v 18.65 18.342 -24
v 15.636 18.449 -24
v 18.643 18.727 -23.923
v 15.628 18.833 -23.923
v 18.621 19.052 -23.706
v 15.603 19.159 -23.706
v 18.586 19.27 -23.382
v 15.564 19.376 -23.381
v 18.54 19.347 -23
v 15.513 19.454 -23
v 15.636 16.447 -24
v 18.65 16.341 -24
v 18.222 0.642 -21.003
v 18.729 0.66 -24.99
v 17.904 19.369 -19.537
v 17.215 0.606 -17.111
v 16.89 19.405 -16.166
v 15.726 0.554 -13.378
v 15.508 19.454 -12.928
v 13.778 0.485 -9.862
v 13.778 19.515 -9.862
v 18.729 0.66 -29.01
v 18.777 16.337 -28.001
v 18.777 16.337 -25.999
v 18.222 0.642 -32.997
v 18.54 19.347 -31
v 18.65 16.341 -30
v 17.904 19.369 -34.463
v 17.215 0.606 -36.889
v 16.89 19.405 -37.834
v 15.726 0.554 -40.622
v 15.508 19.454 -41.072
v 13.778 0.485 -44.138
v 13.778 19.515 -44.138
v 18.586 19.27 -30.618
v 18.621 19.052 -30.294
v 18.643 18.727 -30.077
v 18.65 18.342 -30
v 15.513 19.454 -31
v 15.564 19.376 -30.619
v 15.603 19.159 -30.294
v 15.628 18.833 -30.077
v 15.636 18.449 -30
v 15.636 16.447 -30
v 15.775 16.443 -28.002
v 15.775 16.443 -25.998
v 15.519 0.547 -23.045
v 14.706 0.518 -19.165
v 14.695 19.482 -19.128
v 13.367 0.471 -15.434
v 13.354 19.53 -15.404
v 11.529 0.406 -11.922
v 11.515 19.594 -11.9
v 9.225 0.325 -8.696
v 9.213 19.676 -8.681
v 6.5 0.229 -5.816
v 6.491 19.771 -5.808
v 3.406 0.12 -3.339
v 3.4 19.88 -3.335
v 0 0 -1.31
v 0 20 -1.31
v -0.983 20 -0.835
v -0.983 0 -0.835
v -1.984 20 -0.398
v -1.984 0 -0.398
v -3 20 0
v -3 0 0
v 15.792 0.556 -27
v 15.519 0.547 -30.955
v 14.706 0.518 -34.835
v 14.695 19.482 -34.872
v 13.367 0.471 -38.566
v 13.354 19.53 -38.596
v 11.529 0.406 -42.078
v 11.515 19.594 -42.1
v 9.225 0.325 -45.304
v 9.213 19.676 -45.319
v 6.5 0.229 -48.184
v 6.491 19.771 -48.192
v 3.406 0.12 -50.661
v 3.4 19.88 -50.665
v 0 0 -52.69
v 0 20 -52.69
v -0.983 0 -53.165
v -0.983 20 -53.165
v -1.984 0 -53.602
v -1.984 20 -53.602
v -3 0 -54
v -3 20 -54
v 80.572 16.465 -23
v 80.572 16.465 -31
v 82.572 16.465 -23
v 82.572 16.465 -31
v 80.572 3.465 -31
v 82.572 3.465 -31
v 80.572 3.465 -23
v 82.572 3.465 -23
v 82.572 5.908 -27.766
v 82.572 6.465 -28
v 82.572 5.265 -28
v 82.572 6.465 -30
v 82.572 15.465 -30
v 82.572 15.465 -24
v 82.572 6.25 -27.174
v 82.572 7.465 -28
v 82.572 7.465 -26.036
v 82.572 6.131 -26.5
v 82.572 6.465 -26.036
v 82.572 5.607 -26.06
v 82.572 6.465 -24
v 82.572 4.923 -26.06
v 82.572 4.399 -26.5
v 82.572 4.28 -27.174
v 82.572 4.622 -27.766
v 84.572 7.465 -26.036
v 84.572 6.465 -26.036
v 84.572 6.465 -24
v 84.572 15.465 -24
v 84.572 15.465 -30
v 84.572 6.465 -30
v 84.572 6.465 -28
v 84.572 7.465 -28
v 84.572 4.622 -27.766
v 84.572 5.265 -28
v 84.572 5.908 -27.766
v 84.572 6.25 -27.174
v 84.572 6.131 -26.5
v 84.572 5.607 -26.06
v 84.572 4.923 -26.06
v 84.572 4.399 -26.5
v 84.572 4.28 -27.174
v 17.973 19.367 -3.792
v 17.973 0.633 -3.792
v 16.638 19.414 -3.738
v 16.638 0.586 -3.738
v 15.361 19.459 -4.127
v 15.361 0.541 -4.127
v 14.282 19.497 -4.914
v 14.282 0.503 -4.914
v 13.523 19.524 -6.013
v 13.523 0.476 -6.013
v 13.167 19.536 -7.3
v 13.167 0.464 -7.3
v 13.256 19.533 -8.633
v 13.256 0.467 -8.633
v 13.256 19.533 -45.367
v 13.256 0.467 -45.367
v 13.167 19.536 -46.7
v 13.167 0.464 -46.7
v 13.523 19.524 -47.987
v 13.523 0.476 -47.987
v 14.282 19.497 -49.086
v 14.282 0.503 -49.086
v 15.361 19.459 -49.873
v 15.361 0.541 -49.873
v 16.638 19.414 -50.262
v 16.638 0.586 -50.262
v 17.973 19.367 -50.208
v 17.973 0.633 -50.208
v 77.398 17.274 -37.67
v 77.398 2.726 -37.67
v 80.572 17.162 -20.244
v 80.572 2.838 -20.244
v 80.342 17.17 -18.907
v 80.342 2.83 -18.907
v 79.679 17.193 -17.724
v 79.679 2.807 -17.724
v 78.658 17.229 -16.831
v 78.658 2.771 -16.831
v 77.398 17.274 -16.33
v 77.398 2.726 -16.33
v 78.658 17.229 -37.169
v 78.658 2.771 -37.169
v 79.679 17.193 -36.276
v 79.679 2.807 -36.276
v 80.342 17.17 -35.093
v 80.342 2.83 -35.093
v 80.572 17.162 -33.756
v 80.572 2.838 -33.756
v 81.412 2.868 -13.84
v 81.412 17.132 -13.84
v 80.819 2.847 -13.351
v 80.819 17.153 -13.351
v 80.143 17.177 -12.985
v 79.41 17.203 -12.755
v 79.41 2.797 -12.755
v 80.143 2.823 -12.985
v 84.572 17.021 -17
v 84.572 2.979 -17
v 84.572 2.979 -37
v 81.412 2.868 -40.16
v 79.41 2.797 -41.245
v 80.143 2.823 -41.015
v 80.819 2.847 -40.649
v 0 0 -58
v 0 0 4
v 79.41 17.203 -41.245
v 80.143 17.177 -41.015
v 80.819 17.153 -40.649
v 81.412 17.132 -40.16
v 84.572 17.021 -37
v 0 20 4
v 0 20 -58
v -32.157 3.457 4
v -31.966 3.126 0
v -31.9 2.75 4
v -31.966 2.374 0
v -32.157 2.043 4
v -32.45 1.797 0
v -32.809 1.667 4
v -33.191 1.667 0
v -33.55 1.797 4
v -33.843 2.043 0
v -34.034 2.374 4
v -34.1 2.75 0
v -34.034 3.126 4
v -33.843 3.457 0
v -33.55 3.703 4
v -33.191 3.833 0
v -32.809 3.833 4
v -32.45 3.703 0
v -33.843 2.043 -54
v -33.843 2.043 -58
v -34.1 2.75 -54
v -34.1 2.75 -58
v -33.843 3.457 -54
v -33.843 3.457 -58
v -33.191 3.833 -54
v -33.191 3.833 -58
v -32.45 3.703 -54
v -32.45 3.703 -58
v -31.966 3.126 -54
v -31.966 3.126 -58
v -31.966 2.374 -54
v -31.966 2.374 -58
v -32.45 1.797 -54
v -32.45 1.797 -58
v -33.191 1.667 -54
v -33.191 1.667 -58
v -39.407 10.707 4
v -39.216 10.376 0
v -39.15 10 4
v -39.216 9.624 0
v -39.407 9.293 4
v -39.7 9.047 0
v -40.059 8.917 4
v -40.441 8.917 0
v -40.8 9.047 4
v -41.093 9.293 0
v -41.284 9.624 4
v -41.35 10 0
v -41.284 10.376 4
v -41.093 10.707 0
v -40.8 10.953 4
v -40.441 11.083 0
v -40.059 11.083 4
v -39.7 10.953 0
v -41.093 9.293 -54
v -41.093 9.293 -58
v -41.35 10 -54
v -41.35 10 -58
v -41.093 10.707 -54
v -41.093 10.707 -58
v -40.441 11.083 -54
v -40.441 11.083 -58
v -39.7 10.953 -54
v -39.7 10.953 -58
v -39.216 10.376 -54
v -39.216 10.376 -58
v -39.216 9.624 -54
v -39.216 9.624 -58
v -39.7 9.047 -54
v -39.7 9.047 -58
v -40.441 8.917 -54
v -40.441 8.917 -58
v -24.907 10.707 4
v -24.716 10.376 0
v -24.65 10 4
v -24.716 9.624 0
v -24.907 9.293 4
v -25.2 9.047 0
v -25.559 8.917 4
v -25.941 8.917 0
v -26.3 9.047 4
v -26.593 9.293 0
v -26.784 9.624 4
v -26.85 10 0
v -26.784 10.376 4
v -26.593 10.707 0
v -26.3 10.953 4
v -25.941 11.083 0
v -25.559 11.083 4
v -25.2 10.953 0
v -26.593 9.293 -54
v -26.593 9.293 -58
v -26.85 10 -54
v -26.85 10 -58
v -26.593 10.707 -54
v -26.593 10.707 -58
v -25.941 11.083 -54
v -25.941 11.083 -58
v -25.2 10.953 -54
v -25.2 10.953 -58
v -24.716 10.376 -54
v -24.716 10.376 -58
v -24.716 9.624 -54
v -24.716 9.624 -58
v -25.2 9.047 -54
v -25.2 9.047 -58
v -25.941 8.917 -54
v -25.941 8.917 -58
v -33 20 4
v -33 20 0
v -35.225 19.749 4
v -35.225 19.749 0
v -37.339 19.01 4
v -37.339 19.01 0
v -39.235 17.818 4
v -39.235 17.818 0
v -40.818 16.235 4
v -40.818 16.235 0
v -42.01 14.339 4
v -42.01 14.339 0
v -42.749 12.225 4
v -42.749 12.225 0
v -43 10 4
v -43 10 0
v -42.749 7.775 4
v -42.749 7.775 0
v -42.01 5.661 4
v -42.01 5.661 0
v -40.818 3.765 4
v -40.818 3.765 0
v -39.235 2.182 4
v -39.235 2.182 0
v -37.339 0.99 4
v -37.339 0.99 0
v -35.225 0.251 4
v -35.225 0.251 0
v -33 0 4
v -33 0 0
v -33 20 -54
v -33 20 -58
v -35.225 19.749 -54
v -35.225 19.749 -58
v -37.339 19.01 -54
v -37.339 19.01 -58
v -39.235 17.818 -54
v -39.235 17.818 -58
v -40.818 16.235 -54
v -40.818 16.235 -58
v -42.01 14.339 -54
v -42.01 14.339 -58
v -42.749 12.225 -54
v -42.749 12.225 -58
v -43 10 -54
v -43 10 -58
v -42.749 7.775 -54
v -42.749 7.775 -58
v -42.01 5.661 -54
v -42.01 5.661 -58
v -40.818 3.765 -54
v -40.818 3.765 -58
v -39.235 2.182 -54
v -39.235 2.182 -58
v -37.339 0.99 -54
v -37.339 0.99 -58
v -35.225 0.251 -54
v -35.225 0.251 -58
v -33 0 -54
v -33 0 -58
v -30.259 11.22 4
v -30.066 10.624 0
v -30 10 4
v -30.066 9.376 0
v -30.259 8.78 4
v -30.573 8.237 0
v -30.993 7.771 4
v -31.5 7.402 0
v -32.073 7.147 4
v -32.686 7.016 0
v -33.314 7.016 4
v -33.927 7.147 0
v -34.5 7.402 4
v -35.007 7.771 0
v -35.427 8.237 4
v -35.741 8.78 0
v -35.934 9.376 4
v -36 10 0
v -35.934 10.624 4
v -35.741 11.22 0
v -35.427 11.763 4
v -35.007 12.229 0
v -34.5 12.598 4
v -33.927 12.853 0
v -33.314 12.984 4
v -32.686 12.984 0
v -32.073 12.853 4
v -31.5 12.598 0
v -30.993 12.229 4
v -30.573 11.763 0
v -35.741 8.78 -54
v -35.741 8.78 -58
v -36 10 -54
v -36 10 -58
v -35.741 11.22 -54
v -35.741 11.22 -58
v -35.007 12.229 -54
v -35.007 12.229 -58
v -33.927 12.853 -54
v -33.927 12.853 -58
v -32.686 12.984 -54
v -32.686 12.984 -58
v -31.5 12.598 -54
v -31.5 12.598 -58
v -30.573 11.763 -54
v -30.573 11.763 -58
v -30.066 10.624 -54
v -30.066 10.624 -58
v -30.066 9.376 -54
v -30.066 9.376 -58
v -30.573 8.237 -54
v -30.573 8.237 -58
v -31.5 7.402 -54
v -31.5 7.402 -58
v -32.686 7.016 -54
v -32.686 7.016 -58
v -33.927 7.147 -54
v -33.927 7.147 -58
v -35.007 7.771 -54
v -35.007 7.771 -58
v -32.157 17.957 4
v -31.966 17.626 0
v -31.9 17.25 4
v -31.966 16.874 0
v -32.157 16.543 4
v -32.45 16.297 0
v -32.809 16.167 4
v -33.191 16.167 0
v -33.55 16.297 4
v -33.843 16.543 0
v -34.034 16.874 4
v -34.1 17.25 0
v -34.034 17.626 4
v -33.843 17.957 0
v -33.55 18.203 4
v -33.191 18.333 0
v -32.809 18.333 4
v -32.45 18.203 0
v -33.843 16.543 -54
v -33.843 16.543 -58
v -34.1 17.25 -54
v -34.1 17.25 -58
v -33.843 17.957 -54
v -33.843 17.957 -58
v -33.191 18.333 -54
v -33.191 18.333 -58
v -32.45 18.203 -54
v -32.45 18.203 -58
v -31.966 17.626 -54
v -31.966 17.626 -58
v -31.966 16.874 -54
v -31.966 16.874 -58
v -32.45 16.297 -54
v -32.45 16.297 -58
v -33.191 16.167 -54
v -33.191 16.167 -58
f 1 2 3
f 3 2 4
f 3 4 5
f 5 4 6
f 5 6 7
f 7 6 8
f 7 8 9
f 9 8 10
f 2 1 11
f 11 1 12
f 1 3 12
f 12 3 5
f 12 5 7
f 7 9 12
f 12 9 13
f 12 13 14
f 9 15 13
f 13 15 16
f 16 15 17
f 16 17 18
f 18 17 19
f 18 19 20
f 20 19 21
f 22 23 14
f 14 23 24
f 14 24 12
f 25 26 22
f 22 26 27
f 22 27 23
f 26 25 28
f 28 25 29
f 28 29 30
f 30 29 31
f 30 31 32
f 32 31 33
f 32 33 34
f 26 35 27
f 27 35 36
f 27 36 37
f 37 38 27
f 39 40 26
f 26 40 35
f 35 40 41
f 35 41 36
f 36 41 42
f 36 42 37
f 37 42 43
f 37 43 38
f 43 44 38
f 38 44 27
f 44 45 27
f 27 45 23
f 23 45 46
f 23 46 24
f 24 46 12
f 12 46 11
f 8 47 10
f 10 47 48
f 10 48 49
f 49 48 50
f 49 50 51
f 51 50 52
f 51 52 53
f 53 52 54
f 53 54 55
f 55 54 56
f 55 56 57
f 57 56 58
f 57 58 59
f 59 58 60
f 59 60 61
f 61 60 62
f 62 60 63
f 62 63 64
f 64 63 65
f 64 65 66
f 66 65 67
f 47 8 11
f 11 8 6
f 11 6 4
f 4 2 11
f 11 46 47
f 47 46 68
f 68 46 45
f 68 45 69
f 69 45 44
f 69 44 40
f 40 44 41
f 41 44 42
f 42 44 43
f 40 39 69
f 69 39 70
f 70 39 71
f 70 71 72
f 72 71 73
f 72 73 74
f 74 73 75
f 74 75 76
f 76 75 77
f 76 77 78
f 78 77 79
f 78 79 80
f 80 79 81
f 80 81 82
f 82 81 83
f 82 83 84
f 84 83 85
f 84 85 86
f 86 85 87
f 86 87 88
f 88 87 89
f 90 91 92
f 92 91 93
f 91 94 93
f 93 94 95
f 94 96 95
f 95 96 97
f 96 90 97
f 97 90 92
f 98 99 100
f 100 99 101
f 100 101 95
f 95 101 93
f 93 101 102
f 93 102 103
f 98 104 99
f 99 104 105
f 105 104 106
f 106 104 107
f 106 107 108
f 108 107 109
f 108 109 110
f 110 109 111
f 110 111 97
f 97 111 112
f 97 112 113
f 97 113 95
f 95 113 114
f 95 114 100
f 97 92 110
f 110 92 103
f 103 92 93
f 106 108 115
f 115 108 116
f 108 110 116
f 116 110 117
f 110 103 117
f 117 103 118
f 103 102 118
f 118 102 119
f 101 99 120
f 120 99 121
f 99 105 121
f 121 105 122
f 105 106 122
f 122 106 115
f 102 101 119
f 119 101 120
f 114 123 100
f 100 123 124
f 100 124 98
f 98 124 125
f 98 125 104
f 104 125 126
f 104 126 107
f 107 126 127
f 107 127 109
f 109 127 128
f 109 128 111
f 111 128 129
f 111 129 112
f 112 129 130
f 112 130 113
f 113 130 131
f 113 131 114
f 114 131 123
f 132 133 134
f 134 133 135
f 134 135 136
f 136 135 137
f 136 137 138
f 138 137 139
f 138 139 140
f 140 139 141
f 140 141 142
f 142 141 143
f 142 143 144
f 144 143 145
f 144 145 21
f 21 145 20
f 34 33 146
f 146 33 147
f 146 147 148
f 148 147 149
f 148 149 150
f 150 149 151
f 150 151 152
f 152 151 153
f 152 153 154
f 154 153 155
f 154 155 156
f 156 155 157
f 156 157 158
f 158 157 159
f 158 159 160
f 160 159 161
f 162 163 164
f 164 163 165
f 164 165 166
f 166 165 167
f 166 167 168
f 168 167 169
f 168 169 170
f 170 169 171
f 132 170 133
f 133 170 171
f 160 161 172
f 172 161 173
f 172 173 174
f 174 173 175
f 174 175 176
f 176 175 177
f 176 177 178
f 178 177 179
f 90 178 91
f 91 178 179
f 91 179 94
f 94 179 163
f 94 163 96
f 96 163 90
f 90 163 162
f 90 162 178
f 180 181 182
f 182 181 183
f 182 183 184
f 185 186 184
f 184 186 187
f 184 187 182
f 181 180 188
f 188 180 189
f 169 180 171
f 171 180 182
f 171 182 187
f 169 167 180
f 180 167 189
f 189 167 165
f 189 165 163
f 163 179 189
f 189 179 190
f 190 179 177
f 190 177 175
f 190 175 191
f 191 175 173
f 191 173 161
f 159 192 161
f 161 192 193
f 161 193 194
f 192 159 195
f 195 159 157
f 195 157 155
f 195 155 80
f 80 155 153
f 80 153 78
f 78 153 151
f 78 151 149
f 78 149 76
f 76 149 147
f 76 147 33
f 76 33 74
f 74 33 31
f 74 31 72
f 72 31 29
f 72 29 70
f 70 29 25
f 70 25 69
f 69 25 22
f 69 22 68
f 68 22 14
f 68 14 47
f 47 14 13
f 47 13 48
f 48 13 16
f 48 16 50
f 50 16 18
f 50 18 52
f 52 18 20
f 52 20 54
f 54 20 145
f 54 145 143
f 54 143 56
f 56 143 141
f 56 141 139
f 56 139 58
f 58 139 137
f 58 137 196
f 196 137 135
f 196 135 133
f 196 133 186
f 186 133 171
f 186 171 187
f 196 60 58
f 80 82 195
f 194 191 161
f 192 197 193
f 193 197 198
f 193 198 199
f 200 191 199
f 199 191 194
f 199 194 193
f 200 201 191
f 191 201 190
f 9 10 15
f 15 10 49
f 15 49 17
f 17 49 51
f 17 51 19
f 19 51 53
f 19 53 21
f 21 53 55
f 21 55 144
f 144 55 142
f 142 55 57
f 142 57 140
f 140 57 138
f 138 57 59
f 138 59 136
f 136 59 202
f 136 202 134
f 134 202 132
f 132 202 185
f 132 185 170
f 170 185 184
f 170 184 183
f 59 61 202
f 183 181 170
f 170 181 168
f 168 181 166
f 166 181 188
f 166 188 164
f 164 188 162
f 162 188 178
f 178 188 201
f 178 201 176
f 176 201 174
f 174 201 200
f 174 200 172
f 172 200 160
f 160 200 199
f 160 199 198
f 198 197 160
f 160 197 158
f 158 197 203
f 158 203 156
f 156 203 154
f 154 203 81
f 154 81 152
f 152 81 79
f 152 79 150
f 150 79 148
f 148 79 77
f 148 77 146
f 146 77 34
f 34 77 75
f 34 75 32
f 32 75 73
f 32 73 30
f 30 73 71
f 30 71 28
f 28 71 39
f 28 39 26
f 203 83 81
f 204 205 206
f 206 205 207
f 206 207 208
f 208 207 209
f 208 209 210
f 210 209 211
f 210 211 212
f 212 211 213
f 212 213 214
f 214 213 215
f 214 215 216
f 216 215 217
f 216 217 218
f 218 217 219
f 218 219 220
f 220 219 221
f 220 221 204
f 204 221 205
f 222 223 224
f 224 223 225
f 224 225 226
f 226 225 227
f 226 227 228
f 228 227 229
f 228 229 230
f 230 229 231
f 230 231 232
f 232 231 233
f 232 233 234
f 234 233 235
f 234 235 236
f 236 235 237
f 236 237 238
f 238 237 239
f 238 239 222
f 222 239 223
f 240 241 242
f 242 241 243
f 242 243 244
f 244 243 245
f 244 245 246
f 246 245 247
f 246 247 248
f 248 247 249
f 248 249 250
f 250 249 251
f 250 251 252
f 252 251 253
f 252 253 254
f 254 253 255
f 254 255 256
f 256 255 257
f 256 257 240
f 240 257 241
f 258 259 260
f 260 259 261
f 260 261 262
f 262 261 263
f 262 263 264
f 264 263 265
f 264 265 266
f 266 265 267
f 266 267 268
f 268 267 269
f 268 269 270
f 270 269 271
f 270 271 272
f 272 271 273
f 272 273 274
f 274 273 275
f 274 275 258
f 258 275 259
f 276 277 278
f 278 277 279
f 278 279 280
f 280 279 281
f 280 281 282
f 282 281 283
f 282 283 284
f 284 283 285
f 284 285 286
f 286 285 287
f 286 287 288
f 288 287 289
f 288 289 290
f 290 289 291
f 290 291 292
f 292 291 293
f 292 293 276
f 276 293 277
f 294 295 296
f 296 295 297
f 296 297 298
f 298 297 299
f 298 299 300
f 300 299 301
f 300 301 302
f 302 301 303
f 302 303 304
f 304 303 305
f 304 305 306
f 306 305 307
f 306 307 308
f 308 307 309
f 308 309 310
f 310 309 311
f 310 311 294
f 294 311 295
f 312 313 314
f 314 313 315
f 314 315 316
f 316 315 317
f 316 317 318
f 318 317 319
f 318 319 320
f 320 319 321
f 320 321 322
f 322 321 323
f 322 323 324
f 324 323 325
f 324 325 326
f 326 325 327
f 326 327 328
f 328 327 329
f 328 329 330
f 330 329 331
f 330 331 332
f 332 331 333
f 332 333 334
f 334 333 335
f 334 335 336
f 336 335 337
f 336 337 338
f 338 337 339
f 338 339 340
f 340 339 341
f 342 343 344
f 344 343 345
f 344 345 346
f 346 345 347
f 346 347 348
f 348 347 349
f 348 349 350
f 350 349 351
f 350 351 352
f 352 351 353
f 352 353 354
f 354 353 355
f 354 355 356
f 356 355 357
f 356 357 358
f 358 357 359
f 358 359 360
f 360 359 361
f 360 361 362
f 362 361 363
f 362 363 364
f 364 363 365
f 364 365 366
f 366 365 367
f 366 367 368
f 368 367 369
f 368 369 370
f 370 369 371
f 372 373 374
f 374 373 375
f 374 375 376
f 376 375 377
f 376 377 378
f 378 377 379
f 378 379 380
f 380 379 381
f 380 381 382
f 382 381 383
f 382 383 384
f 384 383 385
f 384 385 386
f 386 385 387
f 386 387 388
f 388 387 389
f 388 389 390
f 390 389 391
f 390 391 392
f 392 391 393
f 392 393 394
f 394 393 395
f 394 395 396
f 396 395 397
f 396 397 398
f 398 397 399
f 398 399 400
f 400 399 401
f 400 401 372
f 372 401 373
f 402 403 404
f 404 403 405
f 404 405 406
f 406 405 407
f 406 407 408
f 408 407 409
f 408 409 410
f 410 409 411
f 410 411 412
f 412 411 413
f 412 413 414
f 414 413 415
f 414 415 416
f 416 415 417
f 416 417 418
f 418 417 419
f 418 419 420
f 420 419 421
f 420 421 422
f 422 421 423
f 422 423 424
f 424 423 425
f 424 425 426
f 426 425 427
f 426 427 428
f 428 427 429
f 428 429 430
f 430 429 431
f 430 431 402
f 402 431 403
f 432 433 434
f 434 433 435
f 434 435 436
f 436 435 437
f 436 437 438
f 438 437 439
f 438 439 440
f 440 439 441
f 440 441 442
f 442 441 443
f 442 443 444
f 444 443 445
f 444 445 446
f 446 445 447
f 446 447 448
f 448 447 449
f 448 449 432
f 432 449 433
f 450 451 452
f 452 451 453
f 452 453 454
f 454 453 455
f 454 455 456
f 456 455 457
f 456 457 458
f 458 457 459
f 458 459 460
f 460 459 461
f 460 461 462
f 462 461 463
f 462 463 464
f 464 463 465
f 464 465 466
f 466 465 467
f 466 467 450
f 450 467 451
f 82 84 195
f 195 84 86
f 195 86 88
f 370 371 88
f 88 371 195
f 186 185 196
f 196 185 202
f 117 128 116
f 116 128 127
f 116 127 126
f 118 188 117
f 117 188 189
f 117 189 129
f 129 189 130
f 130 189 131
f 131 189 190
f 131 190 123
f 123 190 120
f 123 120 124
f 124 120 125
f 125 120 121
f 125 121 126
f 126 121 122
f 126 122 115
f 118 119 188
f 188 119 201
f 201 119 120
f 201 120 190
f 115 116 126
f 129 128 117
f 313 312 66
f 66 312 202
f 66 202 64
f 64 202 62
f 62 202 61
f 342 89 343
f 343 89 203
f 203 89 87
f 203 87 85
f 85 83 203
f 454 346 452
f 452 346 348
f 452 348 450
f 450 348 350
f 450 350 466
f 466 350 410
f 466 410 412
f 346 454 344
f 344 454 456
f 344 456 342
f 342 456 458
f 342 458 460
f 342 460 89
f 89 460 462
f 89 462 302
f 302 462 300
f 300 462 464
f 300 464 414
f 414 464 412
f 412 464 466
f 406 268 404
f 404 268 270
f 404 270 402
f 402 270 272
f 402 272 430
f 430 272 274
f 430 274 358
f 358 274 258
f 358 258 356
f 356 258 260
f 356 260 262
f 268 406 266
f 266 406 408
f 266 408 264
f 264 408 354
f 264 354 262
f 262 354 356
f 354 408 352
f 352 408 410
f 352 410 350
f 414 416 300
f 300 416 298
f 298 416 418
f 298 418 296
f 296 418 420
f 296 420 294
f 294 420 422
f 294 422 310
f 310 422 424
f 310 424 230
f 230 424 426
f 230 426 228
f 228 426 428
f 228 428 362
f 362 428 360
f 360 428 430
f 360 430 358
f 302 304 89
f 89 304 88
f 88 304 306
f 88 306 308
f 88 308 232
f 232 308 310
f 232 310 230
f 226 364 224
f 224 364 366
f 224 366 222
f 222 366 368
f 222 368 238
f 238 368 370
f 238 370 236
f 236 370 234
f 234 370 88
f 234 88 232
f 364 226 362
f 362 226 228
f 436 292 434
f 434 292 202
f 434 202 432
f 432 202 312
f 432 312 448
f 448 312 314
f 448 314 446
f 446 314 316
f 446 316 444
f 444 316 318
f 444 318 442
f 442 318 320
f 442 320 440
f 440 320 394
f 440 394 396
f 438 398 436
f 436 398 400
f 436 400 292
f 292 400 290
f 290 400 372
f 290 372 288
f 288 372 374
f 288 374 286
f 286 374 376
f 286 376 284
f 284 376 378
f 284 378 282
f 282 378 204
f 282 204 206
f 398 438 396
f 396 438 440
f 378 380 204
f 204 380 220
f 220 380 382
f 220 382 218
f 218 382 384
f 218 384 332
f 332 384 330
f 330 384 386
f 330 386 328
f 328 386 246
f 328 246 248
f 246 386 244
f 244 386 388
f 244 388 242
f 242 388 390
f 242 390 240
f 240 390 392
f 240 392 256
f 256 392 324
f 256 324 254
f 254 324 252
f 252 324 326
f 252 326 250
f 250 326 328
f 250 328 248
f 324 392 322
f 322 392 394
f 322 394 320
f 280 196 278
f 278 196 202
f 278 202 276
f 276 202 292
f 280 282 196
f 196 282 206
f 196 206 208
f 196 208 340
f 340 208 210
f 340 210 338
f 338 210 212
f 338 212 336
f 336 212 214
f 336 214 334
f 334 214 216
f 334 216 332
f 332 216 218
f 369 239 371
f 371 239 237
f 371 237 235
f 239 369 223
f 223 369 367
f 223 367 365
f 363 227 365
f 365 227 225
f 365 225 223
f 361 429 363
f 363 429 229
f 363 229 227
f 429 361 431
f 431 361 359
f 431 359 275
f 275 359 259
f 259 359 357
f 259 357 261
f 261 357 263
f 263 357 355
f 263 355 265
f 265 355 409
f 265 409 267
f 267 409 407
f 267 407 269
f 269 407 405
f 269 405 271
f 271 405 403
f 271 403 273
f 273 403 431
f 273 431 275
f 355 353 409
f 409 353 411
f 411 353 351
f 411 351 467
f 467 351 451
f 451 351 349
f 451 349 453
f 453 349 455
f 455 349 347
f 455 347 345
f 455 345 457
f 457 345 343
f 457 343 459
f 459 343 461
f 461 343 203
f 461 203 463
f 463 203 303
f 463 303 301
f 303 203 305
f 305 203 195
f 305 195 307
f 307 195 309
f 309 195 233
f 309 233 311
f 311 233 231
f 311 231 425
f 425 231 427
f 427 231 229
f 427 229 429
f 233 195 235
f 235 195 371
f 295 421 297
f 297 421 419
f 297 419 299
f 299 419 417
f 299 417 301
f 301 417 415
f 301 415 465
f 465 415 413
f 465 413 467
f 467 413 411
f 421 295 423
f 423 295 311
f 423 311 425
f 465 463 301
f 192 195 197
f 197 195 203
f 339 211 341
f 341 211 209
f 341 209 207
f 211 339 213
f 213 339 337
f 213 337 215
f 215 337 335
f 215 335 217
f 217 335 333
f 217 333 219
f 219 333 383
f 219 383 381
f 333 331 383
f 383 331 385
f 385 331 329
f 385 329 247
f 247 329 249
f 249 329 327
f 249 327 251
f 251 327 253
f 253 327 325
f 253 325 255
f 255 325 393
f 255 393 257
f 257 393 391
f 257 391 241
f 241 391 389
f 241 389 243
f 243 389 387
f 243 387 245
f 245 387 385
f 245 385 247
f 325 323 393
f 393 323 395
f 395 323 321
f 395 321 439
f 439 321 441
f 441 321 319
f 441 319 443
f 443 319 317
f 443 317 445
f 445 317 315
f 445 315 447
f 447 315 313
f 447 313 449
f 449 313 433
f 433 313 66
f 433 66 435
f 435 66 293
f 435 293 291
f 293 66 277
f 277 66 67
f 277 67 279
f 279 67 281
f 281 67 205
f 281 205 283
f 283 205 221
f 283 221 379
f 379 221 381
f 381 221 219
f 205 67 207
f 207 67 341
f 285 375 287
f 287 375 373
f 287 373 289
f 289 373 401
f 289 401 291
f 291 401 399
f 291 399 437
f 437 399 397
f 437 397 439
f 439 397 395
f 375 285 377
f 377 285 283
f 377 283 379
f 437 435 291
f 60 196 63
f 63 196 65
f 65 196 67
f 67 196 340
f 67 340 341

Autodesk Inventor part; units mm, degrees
ref_plane "YZ Plane" through (0, 0, 0) normal (1, 0, 0) x (0, 1, 0)
ref_plane "XZ Plane" through (0, 0, 0) normal (0, 1, 0) x (-1, 0, 0)
ref_plane "XY Plane" through (0, 0, 0) normal (0, 0, 1) x (1, 0, 0)
sketch "Sketch1" plane through (0, 0, 0) normal (0, 1, 0) x (-1, 0, 0)
  line L0 (0, 0) -> (0, -54)
  line L1 (0, -54) -> (5, -54)
  line L2 (5, -54) -> (5, -58)
  line L3 (5, -58) -> (0, -58)
  line L4 (0, -58) -> (0, -54)
  line L5 (0, 0) -> (3, 0)
  line L6 (3, 0) -> (3, 4)
  line L7 (3, 4) -> (0, 4)
  line L8 (0, 4) -> (0, 0)
  line L9 (3, 0) -> (0, 0)
  line L10 (0, 0) -> (0, -54)
  line L11 (0, -54) -> (3, -54)
  line L12 (3, -54) -> (3, 0)
  line L13 (3, 4) -> (43, 4)
  line L14 (43, 4) -> (43, 0)
  line L15 (43, 0) -> (3, 0)
  line L16 (3, 0) -> (3, 4)
  line L17 (3, -54) -> (43, -54)
  line L18 (43, -54) -> (43, -58)
  line L19 (43, -58) -> (3, -58)
  line L20 (3, -58) -> (3, -54)
  line L21 (0, -27) -> (-82.8143, -27)
  line L22 (-82.8143, -27) -> (-97.578, -27)
  line L23 (0, 4) -> (90, 4) construction
  line L24 (0, 0) -> (80, 0) construction
  line L25 (-84.5723, -27) -> (-84.5723, -17)
  line L26 (-84.5723, -27) -> (-84.5723, -37)
  line L27 (-84.5723, -37) -> (-80.5723, -37)
  line L28 (-80.5723, -37) -> (-80.5723, -17)
  line L29 (-80.5723, -17) -> (-84.5723, -17)
  line L30 (0, 0) -> (-80.5723, -17)
  line L31 (0, -54) -> (-80.5723, -37)
  line L32 (-80.5723, -37) -> (-80.5723, -41)
  line L33 (-80.5723, -41) -> (0, -58)
  line L34 (-84.5723, -37) -> (-80.5723, -41)
  line L35 (-80.5723, -17) -> (-80.5723, -13)
  line L36 (-80.5723, -13) -> (0, 4)
  line L37 (-84.5723, -17) -> (-80.5723, -13)
  line L38 (3, -27) -> (13, -27)
  circle A0 centre (13, -27) radius 28.7924
  line L39 (41.7924, -27) -> (44.7924, -27)
  circle A1 centre (13, -27) radius 31.7924
  point P0 (-85.1718, -27)
  point P1 (-74.1819, -27)
  point P2 (3, 0)
  point P3 (-5.5314, -1.1671)
  point P4 (-5.5314, -52.8329)
  dimension "d0" = 54
  dimension "d1" = 5
  dimension "d2" = 4
  dimension "d3" = 3
  dimension "d4" = 4
  dimension "d5" = 40
  dimension "d6" = 40
  dimension "d32" = 10
  dimension "d34" = 10
  dimension "d35" = 4
  dimension "d36" = 4
  dimension "d37" = 4
  dimension "d41" = 10
  dimension "d42" = 3
  dimension "d58" = 4
extrude "Extrusion1" add sketch "Sketch1" along normal blind 20 contours L5 A0 L0 | L8 A1 L6 L5 | L30 A1 L8 | L0 A0 L21 A1 L30 | A0 L15 | L6 A1 L13 L15 A0 | A1 L30 L35 L36 L8 | L8 L7 L6 A1 | A0 L0 L31 A1 L21 | L6 L13 A1 | L28 L21 L22 L25 L29 | L29 L37 L35 | A0 L1 L0 | L20 A1 L4 L1 | A0 L2 A1 L20 | L1 L2 A0 | A1 L13 L14 L15 | L28 L27 L26 L22 L21 | A1 L4 L33 L32 L31 | L31 L4 A1 | L17 A0 L2 | A1 L2 L3 L20 | L20 L3 L4 A1 | A0 L17 A1 L19 L2 | L32 L34 L27 | A1 L19 L2 | L17 L18 L19 A1
sketch "Sketch2" plane through (-43, 0, 4) normal (0, 0, 1) x (1, 0, 0)
  line L0 (43, 20) -> (0, 20) projected
  line L1 (0, 20) -> (10, 20)
  line L2 (10, 20) -> (10, 10)
  line L3 (10, 10) -> (0, 10)
  line L4 (0, 10) -> (0, 20)
  circle A0 centre (10, 10) radius 3
  circle A1 centre (10, 10) radius 10
  line L5 (128.1718, 0) -> (128.1718, 20) projected
  line L6 (128.1718, 10) -> (128.1718, 17)
  line L7 (128.1718, 17) -> (128.1718, 3)
  line L8 (43, 0) -> (0, 0) projected
  line L9 (128.1718, 3) -> (43, 0)
  line L10 (43, 0) -> (128.1718, 0)
  line L11 (128.1718, 0) -> (128.1718, 3)
  line L12 (43, 20) -> (73.6773, 20) projected
  line L13 (128.1718, 17) -> (43, 20)
  line L14 (128.1718, 20) -> (43, 20) projected
  line L15 (43, 20) -> (128.1718, 20)
  line L16 (128.1718, 20) -> (128.1718, 17)
  line L17 (10, 10) -> (0, 10)
  line L18 (0, 10) -> (0, 0)
  line L19 (0, 0) -> (10, 0)
  line L20 (10, 0) -> (10, 10)
  circle A2 centre (10, 10) radius 8
  circle A3 centre (10, 10) radius 6.5
  line L21 (10, 18) -> (10, 16.5)
  circle A4 centre (10, 17.25) radius 1.1
  line L22 (2, 10) -> (3.5, 10)
  circle A5 centre (2.75, 10) radius 1.1
  line L23 (10, 3.5) -> (10, 2)
  circle A6 centre (10, 2.75) radius 1.1
  line L24 (16.5, 10) -> (18, 10)
  circle A7 centre (17.25, 10) radius 1.1
  dimension "d15" = 10
  dimension "d16" = 10
  dimension "d17" = 6
  dimension "d18" = 7
  dimension "d19" = 14
  dimension "d22" = 16
  dimension "d23" = 13
  dimension "d24" = 2.2
  dimension "d25" = 2.2
  dimension "d26" = 2.2
  dimension "d27" = 2.2
extrude "Extrusion2" cut sketch "Sketch2" against normal blind 100 contours L12 L14 L5 L13 | A1 L4 L0 | A4 A2 L2 | L2 A2 A4 | A1 L8 L18 | A2 A4 A3 L2 | L2 A3 A4 A2 | A5 A2 L3 | L3 A2 A5 | L5 L10 L9 | A3 A4 L2 | L2 A4 A3 | A7 A2 | A2 L24 A3 A7 | A5 A3 L3 A2 | A6 A2 L20 | L20 A2 A6 | L3 A3 A5 A2 | A2 A7 A3 L24 | A3 A7 | A5 L3 A3 | A2 A6 A3 L20 | L20 A3 A6 A2 | L3 A5 A3 | A0 L20 L2 | L2 L3 A0 | A3 A6 L20 | L20 A6 A3 | L20 A0 L3
sketch "Sketch3" plane through (80.5723, 2.838, -17) normal (-1, 0, 0) x (0, 0, 1)
  line L0 (0, 14.324) -> (-20, 14.324) projected
  line L1 (-20, 14.1831) -> (0, 14.1831) projected
  line L2 (0, 14.324) -> (-20, 14.1831)
  line L3 (-10, 14.2536) -> (-10, 0)
  line L4 (-20, 0) -> (0, 0) projected
  line L5 (-14, 0.6268) -> (-6, 0.6268)
  line L6 (-6, 0.6268) -> (-6, 13.6268)
  line L7 (-6, 13.6268) -> (-14, 13.6268)
  line L8 (-14, 13.6268) -> (-14, 0.6268)
  line L9 (-14, 0.6268) -> (-6, 13.6268) construction
  line L10 (-6, 0.6268) -> (-14, 13.6268) construction
  line L11 (-14, 0.6268) -> (-10, 0.6268)
  line L12 (-10, 0.6268) -> (-10, 2.4268)
  line L13 (-10, 2.4268) -> (-14, 2.4268)
  line L14 (-14, 2.4268) -> (-14, 0.6268)
  circle A0 centre (-10, 2.4268) radius 1
  line L15 (-14, 13.6268) -> (-6, 13.6268)
  line L16 (-6, 13.6268) -> (-6, 12.6268)
  line L17 (-6, 12.6268) -> (-14, 12.6268)
  line L18 (-14, 12.6268) -> (-14, 13.6268)
  line L19 (-14, 13.6268) -> (-13, 13.6268)
  line L20 (-13, 13.6268) -> (-13, 0.6268)
  line L21 (-13, 0.6268) -> (-14, 0.6268)
  line L22 (-14, 0.6268) -> (-14, 13.6268)
  line L23 (-6, 13.6268) -> (-7, 13.6268)
  line L24 (-7, 13.6268) -> (-7, 0.6268)
  line L25 (-7, 0.6268) -> (-6, 0.6268)
  line L26 (-6, 0.6268) -> (-6, 13.6268)
  line L27 (-6, 0.6268) -> (-14, 0.6268)
  line L28 (-14, 0.6268) -> (-14, 3.6268)
  line L29 (-14, 3.6268) -> (-6, 3.6268)
  line L30 (-6, 3.6268) -> (-6, 0.6268)
  line L31 (-9.0365, 2.6944) -> (-11, 2.6944)
  line L32 (-11, 2.6944) -> (-11, 4.6268)
  line L33 (-11, 4.6268) -> (-9.0365, 4.6268)
  line L34 (-9.0365, 4.6268) -> (-9.0365, 2.6944)
  line L35 (-6, 13.6268) -> (-7, 13.6268)
  line L36 (-7, 13.6268) -> (-7, 3.6268)
  line L37 (-7, 3.6268) -> (-6, 3.6268)
  line L38 (-6, 3.6268) -> (-6, 13.6268)
  point P0 (17, -2.838)
  point P1 (-10, 7.1268)
  point P2 (-9.0365, 3.6268)
  point P3 (-7, 12.6268)
  point P4 (-13, 12.6268)
  point P5 (-13, 3.6268)
  point P6 (-11, 3.6268)
  dimension "d46" = 2
  dimension "d38" = 8
  dimension "d39" = 13
  dimension "d44" = 4
  dimension "d45" = 1.8
  dimension "d47" = 1
  dimension "d48" = 1
  dimension "d49" = 1
  dimension "d50" = 3
  dimension "d51" = 4
fillet "Fillet1" radius 4 4 edges at (80.5723, 10, -41) (80.5723, 10, -13) (80.5723, 10, -37) (80.5723, 10, -17)
fillet "Fillet2" radius 4 2 edges at (5.5314, 10, -52.8329) (5.5314, 10, -1.1671)
extrude "Extrusion3" cut sketch "Sketch3" against normal blind 20 contours L17 L24 L29 L34 L33 L3 | L3 L33 L32 L29 L20 L17 | A0 L31 L3 | L3 L31 A0 | L31 A0 L3 | L3 L13 A0 L31 | L13 L3 A0
extrude "Extrusion4" cut sketch "Sketch3" against normal blind 2 contours L7 L24 L17 L3 | L3 L17 L20 L7 | L7 L6 L17 L24 | L20 L17 L8 L7 | L33 L34 L29 L3 | L3 L29 L32 L33 | L17 L6 L29 L24 | L20 L29 L8 L17 | L29 L34 A0 L3 | L3 A0 L31 L32 L29 | L29 L6 L5 L24 | L24 L5 L3 A0 L34 L29 | L29 L32 L31 A0 L13 L20 | L20 L13 L8 L29 | A0 L31 L3 | L3 L31 A0 | L20 L5 L8 L13 | L13 A0 L3 L5 L20 | L31 A0 L3 | L3 L13 A0 L31 | L13 L3 A0
sketch "Sketch4" plane through (84.5723, 17.0211, -17) normal (0.0352, 0.9994, 0) x (0.9994, -0.0352, 0)
  ellipse E0 centre (-97.6328, 10) end of major axis (-129.4449, 10) minor radius 31.7924 (-70.8385, -7.1379) -> (-70.8385, 27.1379) ccw projected
  line L0 (-97.6328, 10) -> (-62.4593, 10)
  line L1 (-62.4593, 10) -> (-62.4593, 13)
  line L2 (-62.4593, 13) -> (-97.6328, 13)
  line L3 (-97.6328, 13) -> (-97.6328, 10)
  line L4 (-97.6328, 10) -> (-62.4593, 10)
  line L5 (-62.4593, 10) -> (-62.4593, 7)
  line L6 (-62.4593, 7) -> (-97.6328, 7)
  line L7 (-97.6328, 7) -> (-97.6328, 10)
  point P0 (-83.9208, -17)
  point P1 (-62.4593, 10)
  dimension "d59" = 3
  dimension "d60" = 3
extrude "Extrusion6" cut sketch "Sketch4" against normal blind 3
fillet "Fillet3" radius 1 2 edges at (17.1431, 19.3962, -30) (17.1431, 19.3962, -24)
properties part number "calf_2"
